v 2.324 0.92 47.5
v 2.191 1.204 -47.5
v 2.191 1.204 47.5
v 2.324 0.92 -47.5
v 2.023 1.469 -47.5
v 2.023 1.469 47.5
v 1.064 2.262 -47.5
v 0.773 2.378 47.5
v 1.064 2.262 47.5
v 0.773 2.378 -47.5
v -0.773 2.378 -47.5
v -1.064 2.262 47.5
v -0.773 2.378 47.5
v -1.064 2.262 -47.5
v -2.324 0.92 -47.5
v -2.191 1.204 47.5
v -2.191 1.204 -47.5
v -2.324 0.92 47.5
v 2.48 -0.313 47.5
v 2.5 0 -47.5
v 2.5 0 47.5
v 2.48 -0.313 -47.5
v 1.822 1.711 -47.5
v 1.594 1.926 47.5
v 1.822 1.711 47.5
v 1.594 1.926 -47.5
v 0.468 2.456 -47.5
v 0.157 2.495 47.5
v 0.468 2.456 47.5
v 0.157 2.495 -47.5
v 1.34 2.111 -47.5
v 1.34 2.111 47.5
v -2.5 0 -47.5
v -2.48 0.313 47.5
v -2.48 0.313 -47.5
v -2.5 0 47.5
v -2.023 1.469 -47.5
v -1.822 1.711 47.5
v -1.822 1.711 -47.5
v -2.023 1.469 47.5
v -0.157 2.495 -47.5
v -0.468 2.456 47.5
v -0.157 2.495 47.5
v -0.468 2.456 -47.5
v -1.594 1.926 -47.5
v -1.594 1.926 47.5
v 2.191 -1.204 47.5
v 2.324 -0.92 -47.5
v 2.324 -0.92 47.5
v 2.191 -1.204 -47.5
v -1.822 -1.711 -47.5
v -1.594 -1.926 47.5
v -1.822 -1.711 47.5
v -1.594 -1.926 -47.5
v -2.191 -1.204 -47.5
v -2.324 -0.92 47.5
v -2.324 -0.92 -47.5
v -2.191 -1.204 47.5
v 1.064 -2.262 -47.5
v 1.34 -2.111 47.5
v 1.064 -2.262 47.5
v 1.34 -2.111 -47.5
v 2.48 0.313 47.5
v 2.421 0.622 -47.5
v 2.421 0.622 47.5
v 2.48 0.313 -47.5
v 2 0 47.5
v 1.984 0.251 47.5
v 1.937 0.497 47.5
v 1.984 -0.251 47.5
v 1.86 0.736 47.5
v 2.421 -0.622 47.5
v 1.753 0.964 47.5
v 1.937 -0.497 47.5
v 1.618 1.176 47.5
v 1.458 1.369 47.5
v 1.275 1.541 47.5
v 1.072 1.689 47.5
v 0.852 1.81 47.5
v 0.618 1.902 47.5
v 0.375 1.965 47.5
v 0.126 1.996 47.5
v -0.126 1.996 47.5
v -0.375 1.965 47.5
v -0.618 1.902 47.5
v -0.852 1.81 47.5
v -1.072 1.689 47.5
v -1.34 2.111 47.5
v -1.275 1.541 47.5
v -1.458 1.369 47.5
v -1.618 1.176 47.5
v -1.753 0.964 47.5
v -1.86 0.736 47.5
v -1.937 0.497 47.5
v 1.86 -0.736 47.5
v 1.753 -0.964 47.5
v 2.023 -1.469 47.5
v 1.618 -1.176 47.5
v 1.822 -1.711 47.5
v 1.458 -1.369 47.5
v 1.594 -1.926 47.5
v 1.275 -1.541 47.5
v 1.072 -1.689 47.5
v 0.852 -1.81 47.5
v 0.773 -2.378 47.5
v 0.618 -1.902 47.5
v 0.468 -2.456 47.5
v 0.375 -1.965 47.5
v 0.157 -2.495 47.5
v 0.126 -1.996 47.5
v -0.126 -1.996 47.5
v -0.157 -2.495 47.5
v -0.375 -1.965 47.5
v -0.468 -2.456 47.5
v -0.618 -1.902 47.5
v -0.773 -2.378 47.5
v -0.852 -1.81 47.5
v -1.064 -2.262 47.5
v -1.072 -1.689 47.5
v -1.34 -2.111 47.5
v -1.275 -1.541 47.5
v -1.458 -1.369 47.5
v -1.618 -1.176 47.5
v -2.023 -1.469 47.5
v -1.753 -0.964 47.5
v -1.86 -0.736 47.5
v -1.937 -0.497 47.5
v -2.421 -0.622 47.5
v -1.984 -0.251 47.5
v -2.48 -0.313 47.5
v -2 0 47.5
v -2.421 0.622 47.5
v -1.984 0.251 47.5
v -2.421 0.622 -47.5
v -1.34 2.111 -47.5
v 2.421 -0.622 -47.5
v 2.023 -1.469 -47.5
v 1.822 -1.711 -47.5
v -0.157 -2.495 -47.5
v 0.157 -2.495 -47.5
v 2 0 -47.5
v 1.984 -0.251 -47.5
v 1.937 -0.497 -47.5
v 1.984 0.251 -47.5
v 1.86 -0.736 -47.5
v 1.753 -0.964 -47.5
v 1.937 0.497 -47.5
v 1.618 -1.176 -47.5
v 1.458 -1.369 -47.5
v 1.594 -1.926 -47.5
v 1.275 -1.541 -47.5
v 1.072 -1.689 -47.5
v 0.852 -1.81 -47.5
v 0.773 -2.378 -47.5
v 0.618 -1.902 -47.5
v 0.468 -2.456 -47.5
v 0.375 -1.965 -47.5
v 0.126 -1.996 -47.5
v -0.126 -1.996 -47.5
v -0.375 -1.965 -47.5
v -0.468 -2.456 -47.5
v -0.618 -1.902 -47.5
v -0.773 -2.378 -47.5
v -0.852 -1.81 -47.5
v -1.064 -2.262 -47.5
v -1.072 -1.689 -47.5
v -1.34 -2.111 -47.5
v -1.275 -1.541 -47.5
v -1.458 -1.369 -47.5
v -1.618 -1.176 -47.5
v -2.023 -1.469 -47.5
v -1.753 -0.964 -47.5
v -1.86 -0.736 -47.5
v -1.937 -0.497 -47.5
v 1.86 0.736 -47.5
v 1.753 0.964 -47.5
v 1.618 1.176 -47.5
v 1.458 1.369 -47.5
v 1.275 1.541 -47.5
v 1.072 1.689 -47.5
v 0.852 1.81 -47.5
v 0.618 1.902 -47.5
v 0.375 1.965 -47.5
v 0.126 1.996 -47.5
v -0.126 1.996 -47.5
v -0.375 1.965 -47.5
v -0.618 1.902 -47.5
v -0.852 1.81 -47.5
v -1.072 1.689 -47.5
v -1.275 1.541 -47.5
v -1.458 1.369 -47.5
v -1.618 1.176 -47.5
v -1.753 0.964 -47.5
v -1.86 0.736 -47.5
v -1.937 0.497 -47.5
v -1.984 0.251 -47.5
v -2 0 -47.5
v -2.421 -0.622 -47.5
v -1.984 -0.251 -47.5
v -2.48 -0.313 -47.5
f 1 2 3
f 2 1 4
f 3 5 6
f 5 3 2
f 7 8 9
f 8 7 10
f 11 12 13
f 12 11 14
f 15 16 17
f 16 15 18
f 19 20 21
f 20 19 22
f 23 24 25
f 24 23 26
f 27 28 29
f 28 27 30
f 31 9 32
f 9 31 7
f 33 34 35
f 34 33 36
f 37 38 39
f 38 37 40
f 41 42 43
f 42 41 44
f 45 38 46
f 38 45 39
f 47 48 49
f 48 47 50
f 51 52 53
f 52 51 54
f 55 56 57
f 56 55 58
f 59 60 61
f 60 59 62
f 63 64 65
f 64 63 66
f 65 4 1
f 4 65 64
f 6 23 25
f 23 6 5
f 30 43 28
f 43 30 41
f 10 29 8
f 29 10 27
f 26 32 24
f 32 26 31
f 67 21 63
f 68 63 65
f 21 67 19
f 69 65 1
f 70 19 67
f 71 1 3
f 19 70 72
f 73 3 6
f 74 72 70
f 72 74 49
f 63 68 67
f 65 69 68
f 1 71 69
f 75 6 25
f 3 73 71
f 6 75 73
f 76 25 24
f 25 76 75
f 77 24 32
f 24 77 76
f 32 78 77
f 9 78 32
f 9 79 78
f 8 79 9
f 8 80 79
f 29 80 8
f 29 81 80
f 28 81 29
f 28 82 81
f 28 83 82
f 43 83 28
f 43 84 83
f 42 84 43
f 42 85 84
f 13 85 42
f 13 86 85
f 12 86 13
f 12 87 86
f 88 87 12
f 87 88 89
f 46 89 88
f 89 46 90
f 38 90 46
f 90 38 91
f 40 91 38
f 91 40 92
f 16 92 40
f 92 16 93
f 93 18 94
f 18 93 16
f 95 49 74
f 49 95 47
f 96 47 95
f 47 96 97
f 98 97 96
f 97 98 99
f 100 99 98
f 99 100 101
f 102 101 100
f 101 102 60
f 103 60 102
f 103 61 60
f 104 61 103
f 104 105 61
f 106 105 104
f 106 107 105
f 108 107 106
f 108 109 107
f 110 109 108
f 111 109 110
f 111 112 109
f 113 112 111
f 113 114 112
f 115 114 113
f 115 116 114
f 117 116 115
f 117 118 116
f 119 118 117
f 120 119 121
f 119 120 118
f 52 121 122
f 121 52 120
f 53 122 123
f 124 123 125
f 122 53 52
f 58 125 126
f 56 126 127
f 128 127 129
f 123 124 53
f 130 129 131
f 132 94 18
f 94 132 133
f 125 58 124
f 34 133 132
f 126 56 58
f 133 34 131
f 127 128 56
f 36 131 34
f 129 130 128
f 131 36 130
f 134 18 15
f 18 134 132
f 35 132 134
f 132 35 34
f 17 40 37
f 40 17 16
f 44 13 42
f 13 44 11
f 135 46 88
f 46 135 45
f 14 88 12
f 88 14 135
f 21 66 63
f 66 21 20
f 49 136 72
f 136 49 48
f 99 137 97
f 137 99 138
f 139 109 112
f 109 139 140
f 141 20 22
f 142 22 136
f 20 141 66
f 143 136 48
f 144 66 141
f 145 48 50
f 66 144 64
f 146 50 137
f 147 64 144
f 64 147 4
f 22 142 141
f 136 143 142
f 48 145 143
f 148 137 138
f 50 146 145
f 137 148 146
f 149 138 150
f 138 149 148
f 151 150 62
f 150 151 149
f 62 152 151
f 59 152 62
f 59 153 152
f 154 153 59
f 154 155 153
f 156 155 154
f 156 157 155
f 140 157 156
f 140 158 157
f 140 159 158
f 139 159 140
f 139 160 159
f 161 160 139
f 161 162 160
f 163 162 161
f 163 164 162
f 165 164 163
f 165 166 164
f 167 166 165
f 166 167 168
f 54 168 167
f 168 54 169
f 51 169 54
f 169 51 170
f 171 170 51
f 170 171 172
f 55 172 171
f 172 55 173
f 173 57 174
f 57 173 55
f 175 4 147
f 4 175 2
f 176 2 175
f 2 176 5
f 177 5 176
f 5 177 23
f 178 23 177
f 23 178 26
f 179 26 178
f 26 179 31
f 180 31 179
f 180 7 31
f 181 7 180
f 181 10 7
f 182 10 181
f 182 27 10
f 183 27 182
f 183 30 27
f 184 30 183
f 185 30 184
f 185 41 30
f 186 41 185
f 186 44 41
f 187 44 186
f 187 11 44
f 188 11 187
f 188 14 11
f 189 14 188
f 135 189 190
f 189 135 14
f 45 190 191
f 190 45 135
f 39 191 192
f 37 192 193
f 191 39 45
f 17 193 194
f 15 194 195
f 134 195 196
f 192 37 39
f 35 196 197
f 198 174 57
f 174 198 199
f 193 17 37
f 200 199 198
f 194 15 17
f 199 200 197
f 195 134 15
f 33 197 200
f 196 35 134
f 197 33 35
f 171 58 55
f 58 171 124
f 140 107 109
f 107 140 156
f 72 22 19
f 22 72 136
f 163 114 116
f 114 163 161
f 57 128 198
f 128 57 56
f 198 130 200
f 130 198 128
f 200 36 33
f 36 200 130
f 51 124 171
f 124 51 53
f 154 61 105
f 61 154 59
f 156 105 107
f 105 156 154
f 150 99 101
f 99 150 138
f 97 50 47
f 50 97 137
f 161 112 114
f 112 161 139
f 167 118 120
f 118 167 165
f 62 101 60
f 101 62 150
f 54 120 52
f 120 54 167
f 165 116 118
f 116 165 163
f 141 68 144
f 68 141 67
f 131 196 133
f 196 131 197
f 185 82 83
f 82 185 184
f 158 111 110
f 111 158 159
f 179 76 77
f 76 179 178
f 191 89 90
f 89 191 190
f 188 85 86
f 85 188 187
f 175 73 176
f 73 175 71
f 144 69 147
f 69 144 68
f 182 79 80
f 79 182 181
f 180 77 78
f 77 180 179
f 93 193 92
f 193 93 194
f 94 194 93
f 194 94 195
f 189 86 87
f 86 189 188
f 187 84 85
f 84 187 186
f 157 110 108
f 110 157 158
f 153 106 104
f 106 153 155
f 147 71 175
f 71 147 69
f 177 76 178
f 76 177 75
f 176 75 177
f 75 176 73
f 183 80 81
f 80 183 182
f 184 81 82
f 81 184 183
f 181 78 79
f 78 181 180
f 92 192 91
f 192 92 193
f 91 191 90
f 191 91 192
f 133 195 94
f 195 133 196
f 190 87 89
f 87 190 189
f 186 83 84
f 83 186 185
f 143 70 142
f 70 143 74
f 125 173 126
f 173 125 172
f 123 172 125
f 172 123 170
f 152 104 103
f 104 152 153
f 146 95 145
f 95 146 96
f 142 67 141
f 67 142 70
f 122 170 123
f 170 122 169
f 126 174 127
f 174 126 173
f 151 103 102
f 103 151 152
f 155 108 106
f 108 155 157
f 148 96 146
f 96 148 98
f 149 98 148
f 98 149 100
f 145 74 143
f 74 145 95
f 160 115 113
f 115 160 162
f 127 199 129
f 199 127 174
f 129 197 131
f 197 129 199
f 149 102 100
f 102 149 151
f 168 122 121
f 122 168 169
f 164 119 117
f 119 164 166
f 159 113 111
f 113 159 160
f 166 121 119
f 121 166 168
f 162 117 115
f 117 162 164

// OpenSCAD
$fn = 50;


difference() {
	union() {
		translate(v = [0, 0, -47.5000000000]) {
			cylinder(h = 95, r = 2.5000000000);
		}
	}
	union() {
		translate(v = [0, 0, -100.0000000000]) {
			cylinder(h = 200, r = 2);
		}
	}
}
